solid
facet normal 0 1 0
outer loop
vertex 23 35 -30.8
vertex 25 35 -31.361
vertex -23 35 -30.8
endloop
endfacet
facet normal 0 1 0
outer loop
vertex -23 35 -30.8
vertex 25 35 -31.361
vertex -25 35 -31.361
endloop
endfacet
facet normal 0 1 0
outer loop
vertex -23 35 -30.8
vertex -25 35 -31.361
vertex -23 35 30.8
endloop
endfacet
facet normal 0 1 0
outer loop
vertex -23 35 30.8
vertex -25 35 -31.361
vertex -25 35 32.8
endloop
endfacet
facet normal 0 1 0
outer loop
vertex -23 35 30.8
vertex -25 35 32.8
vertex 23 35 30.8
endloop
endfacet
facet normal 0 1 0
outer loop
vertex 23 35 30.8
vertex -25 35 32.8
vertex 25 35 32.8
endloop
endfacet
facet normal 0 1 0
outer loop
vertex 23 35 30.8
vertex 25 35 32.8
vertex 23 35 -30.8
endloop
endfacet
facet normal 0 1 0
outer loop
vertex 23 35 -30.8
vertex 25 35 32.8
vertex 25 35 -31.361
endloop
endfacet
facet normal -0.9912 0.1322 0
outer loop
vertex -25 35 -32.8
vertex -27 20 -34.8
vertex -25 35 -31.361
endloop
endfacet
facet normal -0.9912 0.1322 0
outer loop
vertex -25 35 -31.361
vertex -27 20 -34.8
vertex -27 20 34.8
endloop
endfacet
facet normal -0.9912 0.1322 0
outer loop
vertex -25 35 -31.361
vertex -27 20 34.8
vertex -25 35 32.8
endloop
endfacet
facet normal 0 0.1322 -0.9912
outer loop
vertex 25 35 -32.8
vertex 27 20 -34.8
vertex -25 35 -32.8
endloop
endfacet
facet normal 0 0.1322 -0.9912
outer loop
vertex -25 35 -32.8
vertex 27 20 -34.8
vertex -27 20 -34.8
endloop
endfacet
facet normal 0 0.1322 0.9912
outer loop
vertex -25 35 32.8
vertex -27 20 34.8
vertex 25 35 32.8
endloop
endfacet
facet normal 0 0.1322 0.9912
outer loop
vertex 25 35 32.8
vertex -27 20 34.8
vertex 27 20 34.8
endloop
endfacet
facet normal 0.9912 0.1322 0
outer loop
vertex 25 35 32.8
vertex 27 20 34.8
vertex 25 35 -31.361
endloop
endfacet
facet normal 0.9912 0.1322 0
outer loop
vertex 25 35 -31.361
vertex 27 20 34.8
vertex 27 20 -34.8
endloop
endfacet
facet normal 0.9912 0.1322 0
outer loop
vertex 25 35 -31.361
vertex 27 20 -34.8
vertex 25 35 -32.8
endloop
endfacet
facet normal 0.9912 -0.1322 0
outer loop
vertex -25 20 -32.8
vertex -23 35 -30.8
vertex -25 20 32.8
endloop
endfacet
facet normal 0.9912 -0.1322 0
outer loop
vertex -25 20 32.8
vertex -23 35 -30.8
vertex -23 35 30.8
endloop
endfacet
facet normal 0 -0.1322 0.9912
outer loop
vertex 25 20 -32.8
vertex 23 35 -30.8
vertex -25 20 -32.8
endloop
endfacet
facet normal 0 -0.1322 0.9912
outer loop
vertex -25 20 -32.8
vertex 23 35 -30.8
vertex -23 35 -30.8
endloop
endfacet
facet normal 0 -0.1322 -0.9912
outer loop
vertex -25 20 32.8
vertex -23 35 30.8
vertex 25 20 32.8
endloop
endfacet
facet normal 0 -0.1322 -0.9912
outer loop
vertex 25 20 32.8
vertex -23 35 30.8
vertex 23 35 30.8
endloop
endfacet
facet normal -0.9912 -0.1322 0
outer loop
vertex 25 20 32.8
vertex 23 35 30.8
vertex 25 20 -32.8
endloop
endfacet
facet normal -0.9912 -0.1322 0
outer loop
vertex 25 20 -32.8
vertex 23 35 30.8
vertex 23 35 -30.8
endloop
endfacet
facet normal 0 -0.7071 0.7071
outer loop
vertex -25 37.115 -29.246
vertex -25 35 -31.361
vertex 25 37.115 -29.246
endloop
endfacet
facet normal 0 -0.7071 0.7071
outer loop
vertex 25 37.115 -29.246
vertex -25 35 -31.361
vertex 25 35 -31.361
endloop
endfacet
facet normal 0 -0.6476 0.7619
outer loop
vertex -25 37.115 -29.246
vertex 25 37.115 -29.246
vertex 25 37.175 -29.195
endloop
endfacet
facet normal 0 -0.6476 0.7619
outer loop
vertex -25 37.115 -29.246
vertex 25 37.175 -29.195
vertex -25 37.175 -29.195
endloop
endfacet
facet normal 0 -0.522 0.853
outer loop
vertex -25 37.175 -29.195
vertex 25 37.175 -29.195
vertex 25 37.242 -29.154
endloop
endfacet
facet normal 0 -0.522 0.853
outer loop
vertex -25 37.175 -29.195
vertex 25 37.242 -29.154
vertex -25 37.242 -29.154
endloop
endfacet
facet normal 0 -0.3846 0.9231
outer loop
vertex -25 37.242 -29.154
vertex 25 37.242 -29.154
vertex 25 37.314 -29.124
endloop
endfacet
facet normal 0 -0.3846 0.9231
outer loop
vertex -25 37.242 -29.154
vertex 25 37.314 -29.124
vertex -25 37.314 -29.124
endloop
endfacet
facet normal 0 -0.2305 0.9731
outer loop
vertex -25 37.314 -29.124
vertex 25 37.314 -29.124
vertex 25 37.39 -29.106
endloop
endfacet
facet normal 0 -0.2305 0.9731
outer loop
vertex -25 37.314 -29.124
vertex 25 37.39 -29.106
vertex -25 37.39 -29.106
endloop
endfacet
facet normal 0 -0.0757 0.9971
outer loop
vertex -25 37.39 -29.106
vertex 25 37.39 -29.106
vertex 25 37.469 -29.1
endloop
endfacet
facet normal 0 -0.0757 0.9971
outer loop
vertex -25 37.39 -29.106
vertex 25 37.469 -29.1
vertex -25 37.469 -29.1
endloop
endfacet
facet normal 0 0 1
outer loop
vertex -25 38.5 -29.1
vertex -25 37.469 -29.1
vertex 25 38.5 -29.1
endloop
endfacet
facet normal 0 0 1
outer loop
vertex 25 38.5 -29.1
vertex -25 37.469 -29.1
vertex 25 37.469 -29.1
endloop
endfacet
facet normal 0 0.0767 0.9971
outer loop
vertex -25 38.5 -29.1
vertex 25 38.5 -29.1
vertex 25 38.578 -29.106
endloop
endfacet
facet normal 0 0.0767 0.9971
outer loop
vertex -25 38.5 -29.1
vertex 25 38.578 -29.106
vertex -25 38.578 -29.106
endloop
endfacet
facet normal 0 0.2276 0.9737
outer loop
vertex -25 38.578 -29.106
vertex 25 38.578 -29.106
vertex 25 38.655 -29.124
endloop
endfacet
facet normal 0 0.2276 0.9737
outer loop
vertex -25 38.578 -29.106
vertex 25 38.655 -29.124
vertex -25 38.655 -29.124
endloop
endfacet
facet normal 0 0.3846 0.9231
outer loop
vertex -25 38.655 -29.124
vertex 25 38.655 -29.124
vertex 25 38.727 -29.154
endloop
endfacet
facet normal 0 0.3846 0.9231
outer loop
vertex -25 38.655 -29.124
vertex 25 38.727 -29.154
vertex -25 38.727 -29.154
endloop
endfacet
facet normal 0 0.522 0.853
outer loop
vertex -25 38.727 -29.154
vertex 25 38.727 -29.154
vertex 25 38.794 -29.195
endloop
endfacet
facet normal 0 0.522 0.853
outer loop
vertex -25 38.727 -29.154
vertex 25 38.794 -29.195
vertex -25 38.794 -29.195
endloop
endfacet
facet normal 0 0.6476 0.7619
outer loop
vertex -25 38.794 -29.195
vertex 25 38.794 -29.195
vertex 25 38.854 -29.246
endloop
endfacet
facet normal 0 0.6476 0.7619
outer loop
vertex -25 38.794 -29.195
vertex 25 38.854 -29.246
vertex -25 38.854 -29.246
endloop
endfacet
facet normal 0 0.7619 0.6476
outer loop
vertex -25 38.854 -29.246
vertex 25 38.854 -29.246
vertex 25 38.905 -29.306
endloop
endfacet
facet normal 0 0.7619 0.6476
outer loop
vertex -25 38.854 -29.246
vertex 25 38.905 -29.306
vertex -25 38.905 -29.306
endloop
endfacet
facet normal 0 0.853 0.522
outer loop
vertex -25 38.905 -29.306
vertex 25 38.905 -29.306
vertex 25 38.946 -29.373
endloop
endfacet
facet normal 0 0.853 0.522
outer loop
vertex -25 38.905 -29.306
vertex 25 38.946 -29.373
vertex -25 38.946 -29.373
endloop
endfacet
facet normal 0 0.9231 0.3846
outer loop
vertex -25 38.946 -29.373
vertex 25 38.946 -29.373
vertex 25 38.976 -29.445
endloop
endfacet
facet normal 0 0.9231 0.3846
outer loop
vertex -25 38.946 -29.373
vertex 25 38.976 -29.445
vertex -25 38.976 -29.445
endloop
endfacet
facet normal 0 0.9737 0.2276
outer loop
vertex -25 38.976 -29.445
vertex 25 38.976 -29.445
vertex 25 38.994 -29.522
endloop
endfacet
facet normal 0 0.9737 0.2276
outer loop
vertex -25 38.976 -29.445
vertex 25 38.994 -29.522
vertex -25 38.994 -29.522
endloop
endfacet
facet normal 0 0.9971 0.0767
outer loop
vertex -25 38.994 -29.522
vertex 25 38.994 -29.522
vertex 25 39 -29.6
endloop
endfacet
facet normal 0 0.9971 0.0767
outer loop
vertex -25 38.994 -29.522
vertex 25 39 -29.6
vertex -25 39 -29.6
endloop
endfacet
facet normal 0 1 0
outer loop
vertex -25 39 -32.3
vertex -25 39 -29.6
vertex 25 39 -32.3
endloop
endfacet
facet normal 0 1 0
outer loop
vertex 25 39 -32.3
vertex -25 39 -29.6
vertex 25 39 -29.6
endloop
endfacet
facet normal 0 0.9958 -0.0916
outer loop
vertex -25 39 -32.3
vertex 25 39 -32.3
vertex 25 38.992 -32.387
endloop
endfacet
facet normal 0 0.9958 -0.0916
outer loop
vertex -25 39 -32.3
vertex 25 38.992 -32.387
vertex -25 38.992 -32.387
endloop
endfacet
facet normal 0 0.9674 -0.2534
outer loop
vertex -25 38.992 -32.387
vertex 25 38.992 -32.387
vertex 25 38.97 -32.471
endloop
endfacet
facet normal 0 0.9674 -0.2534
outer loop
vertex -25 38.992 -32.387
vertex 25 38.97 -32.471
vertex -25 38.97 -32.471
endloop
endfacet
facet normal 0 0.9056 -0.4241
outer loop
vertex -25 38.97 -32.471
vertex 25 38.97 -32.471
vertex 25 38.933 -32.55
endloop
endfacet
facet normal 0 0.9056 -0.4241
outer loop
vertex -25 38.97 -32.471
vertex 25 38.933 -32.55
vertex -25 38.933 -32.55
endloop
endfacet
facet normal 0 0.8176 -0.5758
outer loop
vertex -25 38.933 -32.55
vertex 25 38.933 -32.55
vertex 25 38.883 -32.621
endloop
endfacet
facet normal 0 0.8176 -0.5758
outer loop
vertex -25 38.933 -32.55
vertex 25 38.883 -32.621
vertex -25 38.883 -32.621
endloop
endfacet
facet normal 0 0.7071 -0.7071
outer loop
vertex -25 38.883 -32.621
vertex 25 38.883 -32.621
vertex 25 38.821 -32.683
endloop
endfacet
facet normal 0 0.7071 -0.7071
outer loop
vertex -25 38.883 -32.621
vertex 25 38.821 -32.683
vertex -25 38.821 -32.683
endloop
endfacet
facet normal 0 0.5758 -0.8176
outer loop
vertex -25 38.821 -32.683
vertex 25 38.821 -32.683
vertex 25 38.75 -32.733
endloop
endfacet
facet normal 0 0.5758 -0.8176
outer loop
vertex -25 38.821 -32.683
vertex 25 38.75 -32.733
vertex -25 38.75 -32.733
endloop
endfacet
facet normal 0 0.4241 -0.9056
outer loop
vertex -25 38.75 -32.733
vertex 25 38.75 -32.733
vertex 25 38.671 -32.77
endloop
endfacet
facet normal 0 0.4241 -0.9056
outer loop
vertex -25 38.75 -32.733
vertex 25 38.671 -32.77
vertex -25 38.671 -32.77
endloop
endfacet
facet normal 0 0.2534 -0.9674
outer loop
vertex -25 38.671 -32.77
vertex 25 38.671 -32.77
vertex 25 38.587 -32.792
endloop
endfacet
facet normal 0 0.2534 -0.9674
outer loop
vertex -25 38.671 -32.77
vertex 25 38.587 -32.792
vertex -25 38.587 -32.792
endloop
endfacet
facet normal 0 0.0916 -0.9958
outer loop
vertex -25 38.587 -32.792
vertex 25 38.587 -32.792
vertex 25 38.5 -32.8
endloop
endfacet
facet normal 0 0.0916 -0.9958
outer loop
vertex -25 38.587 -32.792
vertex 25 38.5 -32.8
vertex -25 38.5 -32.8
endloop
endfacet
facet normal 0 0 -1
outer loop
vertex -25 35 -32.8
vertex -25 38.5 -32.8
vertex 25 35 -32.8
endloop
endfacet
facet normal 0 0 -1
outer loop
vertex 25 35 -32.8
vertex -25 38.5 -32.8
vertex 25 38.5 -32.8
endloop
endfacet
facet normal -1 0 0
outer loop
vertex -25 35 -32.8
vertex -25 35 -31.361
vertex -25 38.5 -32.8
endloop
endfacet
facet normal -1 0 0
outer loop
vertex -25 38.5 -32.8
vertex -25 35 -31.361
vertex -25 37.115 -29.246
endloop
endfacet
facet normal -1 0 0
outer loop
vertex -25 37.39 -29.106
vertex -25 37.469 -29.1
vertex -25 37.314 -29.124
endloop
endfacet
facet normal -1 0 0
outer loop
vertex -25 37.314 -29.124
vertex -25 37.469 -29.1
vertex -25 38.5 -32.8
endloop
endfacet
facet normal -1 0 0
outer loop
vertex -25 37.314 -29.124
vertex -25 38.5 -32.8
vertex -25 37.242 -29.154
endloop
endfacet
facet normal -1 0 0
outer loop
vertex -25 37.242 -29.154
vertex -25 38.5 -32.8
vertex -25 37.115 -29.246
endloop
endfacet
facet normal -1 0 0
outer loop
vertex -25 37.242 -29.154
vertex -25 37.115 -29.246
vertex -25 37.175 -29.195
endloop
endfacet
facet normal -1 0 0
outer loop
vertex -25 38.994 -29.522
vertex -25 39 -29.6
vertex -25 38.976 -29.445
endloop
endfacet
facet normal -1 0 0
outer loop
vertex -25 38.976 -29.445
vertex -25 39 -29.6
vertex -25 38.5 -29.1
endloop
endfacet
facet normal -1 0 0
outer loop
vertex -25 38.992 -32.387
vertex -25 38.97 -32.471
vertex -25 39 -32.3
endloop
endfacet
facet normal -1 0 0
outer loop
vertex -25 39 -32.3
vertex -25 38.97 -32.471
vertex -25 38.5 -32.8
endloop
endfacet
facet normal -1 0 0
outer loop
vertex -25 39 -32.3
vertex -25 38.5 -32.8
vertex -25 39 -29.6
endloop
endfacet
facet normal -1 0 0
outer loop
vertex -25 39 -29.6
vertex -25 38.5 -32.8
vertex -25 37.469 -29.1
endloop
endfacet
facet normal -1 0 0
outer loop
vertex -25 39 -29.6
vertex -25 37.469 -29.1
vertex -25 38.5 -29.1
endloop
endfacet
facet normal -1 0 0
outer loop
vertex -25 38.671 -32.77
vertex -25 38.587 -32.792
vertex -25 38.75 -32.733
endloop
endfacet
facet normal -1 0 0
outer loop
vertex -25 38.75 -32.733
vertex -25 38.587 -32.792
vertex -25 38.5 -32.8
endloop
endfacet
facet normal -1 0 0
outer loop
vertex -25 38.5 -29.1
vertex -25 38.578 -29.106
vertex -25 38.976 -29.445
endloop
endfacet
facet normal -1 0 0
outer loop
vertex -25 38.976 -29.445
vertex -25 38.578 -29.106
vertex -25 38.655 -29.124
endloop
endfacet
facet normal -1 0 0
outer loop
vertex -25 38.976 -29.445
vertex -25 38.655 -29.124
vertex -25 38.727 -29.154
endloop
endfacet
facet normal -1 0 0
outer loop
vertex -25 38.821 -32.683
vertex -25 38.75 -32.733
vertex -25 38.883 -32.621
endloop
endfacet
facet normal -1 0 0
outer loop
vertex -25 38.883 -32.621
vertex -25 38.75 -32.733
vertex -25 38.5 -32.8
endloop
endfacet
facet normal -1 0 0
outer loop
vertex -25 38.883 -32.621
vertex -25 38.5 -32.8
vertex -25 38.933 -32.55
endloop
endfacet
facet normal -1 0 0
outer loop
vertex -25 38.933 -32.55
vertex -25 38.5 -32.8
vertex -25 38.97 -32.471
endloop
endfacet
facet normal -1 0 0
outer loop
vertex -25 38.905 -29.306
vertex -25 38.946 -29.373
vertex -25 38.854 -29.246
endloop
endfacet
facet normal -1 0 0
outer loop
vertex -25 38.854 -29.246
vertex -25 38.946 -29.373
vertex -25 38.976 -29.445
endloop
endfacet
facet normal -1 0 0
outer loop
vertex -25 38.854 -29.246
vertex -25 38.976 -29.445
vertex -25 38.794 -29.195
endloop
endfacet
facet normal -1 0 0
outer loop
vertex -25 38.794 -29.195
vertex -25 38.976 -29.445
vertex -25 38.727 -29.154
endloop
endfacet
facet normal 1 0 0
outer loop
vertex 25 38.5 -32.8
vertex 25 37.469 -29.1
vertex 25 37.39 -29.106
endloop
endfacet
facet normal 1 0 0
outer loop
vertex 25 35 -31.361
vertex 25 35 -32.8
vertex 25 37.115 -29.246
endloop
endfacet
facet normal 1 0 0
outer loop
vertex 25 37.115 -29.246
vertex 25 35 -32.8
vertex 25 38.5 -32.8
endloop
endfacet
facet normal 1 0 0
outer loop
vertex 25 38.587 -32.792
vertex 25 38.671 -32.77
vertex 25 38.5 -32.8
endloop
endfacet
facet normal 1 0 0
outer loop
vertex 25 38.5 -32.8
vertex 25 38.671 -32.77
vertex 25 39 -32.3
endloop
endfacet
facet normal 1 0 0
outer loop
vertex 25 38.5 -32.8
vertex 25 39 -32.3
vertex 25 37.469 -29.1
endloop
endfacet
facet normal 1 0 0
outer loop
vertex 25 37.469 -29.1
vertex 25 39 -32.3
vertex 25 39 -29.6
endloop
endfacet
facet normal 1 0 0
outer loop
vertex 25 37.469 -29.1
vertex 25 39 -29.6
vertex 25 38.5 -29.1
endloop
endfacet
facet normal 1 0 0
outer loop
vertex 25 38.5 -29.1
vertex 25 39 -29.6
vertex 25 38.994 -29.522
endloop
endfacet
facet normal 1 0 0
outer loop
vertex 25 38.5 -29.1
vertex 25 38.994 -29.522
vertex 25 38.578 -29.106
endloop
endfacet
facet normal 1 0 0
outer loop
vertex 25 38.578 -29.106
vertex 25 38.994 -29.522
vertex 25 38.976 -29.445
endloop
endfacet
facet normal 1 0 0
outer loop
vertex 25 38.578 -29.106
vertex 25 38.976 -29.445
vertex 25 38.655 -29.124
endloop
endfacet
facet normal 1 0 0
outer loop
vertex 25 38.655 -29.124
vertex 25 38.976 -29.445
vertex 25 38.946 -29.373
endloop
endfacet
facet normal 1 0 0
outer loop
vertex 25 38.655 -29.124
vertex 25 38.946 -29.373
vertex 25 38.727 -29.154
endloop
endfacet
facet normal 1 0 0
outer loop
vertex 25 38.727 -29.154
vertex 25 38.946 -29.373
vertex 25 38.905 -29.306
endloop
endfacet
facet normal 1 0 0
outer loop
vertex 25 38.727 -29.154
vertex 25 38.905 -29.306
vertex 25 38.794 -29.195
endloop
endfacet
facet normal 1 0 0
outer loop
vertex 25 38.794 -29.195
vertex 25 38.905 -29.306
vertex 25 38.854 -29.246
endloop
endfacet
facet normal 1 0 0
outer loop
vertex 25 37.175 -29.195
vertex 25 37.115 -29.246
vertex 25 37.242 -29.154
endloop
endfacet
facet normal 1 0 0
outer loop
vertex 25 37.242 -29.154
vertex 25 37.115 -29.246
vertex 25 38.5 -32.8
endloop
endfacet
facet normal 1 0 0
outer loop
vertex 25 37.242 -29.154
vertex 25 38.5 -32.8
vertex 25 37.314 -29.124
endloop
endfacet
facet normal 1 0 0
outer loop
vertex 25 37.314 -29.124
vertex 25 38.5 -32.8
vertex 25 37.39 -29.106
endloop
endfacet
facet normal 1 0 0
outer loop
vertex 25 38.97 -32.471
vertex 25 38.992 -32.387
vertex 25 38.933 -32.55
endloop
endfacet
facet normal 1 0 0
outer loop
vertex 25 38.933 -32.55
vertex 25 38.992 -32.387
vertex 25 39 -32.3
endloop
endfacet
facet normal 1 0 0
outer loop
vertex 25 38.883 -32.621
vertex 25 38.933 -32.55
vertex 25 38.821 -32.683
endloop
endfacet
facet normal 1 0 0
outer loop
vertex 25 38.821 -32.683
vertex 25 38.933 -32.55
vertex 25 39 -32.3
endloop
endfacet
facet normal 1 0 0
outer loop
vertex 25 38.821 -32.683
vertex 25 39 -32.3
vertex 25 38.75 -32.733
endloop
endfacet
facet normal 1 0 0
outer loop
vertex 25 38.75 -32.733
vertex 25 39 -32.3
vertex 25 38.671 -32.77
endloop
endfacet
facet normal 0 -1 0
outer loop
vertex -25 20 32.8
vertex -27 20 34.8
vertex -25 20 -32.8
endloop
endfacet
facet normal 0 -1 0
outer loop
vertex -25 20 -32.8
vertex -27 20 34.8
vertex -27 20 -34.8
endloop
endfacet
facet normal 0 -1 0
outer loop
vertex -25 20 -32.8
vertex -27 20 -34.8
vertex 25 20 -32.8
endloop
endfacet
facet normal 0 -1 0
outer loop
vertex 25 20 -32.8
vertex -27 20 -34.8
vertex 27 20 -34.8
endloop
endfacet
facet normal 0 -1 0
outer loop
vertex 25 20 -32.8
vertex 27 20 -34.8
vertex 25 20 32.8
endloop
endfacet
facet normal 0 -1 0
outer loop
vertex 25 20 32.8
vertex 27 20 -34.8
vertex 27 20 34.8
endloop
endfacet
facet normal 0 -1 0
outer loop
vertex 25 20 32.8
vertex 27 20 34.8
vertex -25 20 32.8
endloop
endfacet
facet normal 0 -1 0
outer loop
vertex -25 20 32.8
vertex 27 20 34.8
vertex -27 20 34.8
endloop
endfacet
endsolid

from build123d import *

# Parameters (mm, degrees)
BOSS_EXTRUDE1_DEPTH = 20
LOFT1_START         = -34.8
LOFT1_DEPTH         = 69.6
LOFT1_START_2       = -28
LOFT1_2_DEPTH       = 56
BOSS_EXTRUDE2_START = -2
BOSS_EXTRUDE2_DEPTH = 50
BOSS_EXTRUDE3_DEPTH = 2.3
BOSS_EXTRUDE4_DEPTH = 2.3
CUT_EXTRUDE1_START  = -69.6
SKETCH7_R           = 5.3
CUT_EXTRUDE1_DEPTH  = 2
CUT_EXTRUDE2_DEPTH  = 70
SKETCH9_W           = 56.388818991
SKETCH9_H           = 73.181727467
BOSS_EXTRUDE5_DEPTH = 48


with BuildPart() as part:
    # Sketch1 → Boss-Extrude1 (new body)
    with BuildSketch(Plane(origin=(0, 0, 0), x_dir=(1, 0, 0), z_dir=(0, 1, 0))):
        Polygon((27, 34.8), (-27, 34.8), (-27, 0), (-27, -34.8), (27, -34.8), (27, 0), align=None)
        Polygon((25, 0), (25, 32.8), (-25, 32.8), (-25, 0), (-25, -32.8), (25, -32.8), align=None, mode=Mode.SUBTRACT)
    extrude(amount=BOSS_EXTRUDE1_DEPTH)

    # Loft1: read off the stored shape, not the designer's step
    # Loft1 outline → Loft1 (add)
    with BuildSketch(Plane.XY.offset(LOFT1_START)):
        Polygon((-27, 20), (27, 20), (25, 35), (-25, 35), align=None)
    extrude(amount=LOFT1_DEPTH)

    # Loft1 2 outline → Loft1 2 (cut)
    with BuildSketch(Plane.YZ.offset(LOFT1_START_2)):
        Polygon((20, 34.8), (35, 32.8), (35, 34.8), align=None)
        Polygon((35, -32.8), (20, -34.8), (35, -34.8), align=None)
    extrude(amount=LOFT1_2_DEPTH, mode=Mode.SUBTRACT)

    # Cut-Loft1: read off the stored shape, not the designer's step
    # Cut-Loft1: loft between two sections, ruled curve by curve
    cut_loft1_from = [
        Edge.make_line((-25, 20, 32.8), (-25, 20, -32.8)),
        Edge.make_line((-25, 20, -32.8), (25, 20, -32.8)),
        Edge.make_line((25, 20, 32.8), (-25, 20, 32.8)),
        Edge.make_line((25, 20, -32.8), (25, 20, 32.8)),
    ]
    cut_loft1_to = [
        Edge.make_line((-23, 35, 30.8), (-23, 35, -30.8)),
        Edge.make_line((-23, 35, -30.8), (23, 35, -30.8)),
        Edge.make_line((23, 35, 30.8), (-23, 35, 30.8)),
        Edge.make_line((23, 35, -30.8), (23, 35, 30.8)),
    ]
    cut_loft1 = Solid(Shell([*[Face.make_surface_from_curves(cut_loft1_from[k], cut_loft1_to[k]) for k in range(4)], Face(Wire(cut_loft1_from)), Face(Wire(cut_loft1_to))]))
    add(cut_loft1, mode=Mode.SUBTRACT)

    # Sketch2 → Boss-Extrude2 (add)
    with BuildSketch(Plane(origin=(27, 0, 0), x_dir=(0, 0, -1), z_dir=(1, 0, 0)).offset(BOSS_EXTRUDE2_START)):
        with BuildLine():
            Line((32.8, 35), (32.8, 38.5))
            ThreePointArc((32.8, 38.5), (32.653553391, 38.853553391), (32.3, 39))
            Line((32.3, 39), (29.6, 39))
            ThreePointArc((29.6, 39), (29.246446609, 38.853553391), (29.1, 38.5))
            Line((29.1, 38.5), (29.1, 37.468550682))
            ThreePointArc((29.1, 37.468550682), (29.138060234, 37.277208966), (29.246446609, 37.114997291))
            Line((29.246446609, 37.114997291), (31.361443901, 35))
            Line((31.361443901, 35), (32.8, 35))
        make_face()
    extrude(amount=-BOSS_EXTRUDE2_DEPTH)

    # Sketch7 → Cut-Extrude1 (cut)
    with BuildSketch(Plane.XY.offset(34.8).offset(CUT_EXTRUDE1_START)):
        with Locations((0, 10)):
            Circle(SKETCH7_R)
    extrude(amount=CUT_EXTRUDE1_DEPTH, mode=Mode.SUBTRACT)

    # Sketch8 → Cut-Extrude2 (cut)
    with BuildSketch(Plane.ZY.offset(27)):
        with BuildLine():
            Line((-25.8, 6), (-22.8, 6))
            ThreePointArc((-22.8, 6), (-21.8, 4), (-22.8, 2))
            Line((-22.8, 2), (-25.8, 2))
            ThreePointArc((-25.8, 2), (-26.8, 4), (-25.8, 6))
        make_face()
        with BuildLine():
            Line((22.8, 6), (25.8, 6))
            ThreePointArc((25.8, 6), (26.8, 4), (25.8, 2))
            Line((25.8, 2), (22.8, 2))
            ThreePointArc((22.8, 2), (21.8, 4), (22.8, 6))
        make_face()
    extrude(amount=-CUT_EXTRUDE2_DEPTH, mode=Mode.SUBTRACT)


with BuildPart() as body_2:
    # Sketch5 → Boss-Extrude3 (new body)
    with BuildSketch(Plane.XZ):
        with BuildLine():
            Line((-25, -34.8), (-25, -9.8))
            ThreePointArc((-25, -9.8), (0, 15.2), (25, -9.8))
            Line((25, -9.8), (25, -34.8))
            Line((25, -34.8), (27, -34.8))
            Line((27, -34.8), (27, 34.8))
            Line((27, 34.8), (-27, 34.8))
            Line((-27, 34.8), (-27, -34.8))
            Line((-27, -34.8), (-25, -34.8))
        make_face()
    extrude(amount=BOSS_EXTRUDE3_DEPTH)

    # Sketch6 → Boss-Extrude4 (add)
    with BuildSketch(Plane.XZ.offset(2.3)):
        with BuildLine():
            Line((22.7, -34.8), (27, -34.8))
            Line((27, -34.8), (27, 34.8))
            Line((27, 34.8), (-27, 34.8))
            Line((-27, 34.8), (-27, -34.8))
            Line((-27, -34.8), (-22.7, -34.8))
            Line((-22.7, -34.8), (-22.7, -9.8))
            ThreePointArc((-22.7, -9.8), (0, 12.9), (22.7, -9.8))
            Line((22.7, -9.8), (22.7, -34.8))
        make_face()
    extrude(amount=BOSS_EXTRUDE4_DEPTH)


with BuildPart() as body_2_2:
    # Sketch9 → Boss-Extrude5 (new body)
    with BuildSketch(Plane(origin=(0, 20, 0), x_dir=(-1, 0, 0), z_dir=(0, 1, 0))):
        with Locations((0.397726779, 0.176767457)):
            Rectangle(SKETCH9_W, SKETCH9_H)
    extrude(amount=-BOSS_EXTRUDE5_DEPTH)


with BuildPart() as part_1:
    add(part.part)

    # Combine1: cut body 2 2
    add(body_2_2.part, mode=Mode.SUBTRACT)


solid = part_1.part
